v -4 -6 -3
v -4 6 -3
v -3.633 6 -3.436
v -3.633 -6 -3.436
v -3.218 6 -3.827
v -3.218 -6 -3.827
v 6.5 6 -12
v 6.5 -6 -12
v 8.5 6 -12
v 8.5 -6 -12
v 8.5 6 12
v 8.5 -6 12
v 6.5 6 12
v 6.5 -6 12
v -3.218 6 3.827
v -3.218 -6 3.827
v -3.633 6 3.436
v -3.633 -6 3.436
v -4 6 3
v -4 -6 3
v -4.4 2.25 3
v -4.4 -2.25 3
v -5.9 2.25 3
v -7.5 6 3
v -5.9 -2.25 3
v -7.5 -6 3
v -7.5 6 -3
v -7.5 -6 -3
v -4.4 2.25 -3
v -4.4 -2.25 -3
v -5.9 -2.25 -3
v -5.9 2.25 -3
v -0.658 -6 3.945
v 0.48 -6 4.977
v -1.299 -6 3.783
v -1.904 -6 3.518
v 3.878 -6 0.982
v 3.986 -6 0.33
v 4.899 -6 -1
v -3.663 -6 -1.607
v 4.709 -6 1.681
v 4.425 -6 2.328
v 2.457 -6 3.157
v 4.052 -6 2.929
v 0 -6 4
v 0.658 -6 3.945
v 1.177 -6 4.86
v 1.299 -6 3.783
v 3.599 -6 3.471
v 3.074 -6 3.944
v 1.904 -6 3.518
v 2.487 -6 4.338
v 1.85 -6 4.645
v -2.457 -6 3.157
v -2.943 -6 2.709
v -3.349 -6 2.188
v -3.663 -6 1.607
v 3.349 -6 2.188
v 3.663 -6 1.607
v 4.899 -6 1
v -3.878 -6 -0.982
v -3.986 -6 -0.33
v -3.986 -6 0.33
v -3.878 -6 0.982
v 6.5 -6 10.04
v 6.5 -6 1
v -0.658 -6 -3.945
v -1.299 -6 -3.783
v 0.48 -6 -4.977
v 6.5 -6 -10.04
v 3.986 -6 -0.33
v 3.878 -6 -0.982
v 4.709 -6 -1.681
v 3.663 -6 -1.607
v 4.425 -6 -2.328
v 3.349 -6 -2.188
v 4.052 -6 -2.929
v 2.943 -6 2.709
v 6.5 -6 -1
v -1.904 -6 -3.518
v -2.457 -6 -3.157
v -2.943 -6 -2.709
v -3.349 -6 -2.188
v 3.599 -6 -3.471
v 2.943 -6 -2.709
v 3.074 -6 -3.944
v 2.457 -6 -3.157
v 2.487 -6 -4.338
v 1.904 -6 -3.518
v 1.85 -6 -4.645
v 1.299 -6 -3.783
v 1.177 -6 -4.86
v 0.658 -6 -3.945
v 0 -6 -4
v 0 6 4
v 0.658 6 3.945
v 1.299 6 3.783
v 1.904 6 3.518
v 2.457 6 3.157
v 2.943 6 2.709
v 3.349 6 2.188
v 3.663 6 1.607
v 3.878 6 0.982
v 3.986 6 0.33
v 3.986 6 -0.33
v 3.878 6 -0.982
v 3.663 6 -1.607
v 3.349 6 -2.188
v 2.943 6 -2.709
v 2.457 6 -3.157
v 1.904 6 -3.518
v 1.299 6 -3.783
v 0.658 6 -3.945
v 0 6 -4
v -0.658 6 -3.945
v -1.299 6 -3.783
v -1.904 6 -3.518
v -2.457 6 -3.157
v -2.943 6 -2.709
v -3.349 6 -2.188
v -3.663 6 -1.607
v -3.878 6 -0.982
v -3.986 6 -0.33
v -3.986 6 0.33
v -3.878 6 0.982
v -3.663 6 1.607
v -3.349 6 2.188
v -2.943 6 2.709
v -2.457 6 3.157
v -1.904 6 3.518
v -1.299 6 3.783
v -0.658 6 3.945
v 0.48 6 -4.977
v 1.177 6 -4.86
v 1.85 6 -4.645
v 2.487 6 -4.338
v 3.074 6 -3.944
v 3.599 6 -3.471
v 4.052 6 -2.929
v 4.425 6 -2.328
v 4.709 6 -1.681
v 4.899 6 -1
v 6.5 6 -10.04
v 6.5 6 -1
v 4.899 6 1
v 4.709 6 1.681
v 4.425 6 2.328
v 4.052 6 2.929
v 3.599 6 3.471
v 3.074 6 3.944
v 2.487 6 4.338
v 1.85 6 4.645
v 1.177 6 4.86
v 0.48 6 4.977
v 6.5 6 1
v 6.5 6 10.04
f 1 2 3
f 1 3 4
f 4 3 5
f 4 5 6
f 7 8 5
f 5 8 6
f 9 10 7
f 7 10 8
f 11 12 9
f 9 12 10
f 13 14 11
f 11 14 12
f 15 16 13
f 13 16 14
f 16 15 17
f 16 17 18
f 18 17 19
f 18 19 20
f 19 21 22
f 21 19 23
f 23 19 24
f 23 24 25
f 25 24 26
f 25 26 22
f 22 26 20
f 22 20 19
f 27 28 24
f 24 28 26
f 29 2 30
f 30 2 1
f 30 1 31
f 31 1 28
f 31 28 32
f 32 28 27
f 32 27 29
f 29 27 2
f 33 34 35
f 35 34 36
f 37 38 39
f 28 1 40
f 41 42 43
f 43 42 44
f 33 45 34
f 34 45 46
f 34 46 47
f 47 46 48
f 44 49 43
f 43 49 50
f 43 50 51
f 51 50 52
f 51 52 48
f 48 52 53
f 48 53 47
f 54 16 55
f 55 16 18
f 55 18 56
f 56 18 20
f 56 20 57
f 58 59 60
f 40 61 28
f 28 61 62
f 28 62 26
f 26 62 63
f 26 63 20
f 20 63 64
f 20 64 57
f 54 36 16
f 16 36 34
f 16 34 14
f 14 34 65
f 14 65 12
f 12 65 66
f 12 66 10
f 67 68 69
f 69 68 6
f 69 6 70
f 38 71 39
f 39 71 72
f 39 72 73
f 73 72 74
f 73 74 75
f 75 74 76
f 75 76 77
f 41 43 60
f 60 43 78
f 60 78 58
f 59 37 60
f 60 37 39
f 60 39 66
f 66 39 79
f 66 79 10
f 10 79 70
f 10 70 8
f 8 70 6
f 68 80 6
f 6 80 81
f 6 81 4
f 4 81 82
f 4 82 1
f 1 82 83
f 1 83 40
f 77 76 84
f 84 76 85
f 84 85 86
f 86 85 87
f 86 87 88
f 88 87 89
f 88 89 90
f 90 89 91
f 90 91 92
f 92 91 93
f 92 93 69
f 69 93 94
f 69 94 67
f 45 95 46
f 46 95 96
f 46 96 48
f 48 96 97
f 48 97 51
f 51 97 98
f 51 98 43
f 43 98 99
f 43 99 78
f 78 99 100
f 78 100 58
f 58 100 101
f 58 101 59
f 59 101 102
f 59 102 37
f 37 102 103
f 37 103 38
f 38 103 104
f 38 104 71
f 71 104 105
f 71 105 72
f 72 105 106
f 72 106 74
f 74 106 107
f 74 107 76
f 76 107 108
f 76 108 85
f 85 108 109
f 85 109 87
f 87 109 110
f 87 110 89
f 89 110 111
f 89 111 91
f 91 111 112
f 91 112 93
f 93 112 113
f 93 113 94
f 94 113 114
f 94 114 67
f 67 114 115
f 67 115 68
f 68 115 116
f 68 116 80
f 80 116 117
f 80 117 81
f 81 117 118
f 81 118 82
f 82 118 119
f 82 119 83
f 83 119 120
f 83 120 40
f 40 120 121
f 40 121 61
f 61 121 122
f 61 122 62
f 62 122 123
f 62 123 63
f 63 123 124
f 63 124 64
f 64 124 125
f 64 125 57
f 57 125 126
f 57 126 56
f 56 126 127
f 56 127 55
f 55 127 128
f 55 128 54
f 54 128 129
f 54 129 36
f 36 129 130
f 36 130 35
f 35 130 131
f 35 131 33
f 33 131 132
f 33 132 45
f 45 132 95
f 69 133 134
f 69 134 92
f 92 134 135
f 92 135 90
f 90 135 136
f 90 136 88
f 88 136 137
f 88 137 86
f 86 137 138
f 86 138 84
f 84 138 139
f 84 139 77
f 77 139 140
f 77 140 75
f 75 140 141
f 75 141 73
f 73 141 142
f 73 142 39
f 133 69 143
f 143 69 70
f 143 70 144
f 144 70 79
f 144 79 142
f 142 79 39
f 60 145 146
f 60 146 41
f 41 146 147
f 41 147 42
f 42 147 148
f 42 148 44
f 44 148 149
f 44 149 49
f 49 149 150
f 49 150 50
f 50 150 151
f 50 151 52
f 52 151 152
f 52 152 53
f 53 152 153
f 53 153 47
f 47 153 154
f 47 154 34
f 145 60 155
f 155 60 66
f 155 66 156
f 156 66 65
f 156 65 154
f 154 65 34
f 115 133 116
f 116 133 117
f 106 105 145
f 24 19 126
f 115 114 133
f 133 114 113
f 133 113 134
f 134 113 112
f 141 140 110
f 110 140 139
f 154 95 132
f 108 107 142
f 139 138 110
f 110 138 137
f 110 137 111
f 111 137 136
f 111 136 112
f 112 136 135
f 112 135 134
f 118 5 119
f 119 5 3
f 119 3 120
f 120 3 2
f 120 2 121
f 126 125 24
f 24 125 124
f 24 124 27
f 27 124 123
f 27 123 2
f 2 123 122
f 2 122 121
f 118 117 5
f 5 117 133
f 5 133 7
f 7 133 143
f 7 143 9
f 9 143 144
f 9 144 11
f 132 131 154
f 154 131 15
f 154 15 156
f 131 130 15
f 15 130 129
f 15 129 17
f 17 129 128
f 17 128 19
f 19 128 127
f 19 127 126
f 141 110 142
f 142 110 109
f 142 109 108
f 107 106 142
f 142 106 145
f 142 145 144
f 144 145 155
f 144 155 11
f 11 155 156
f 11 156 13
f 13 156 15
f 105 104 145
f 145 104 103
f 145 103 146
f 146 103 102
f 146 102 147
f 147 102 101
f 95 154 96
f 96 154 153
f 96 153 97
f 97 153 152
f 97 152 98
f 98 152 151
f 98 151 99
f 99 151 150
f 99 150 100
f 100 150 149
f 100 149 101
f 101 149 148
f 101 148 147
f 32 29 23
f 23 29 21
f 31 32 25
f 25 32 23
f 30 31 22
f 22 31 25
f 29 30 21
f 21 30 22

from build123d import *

# Parameters (mm, degrees)
BOSS_EXTRUDE1_DEPTH      = 6
BOSS_EXTRUDE1_DEPTH_BACK = 6
SKETCH1_R                = 4
SKETCH2_W                = 1.5
SKETCH2_H                = 4.5
CUT_EXTRUDE1_DEPTH       = 19.255136264


with BuildPart() as part:
    # Sketch1 → Boss-Extrude1 (new, two sides: drawn at the far end of the back side and taken through both)
    with BuildSketch(Plane(origin=(0, 0, 0), x_dir=(1, 0, 0), z_dir=(0, 1, 0)).offset(-BOSS_EXTRUDE1_DEPTH_BACK)):
        with BuildLine():
            Line((-4, 3), (-7.5, 3))
            Line((-7.5, 3), (-7.5, -3))
            Line((-7.5, -3), (-4, -3))
            ThreePointArc((-4, -3), (-3.632728032, -3.435591222), (-3.218284596, -3.826570823))
            Line((-3.218284596, -3.826570823), (6.5, -12))
            Line((6.5, -12), (8.5, -12))
            Line((8.5, -12), (8.5, -1.905552368))
            Line((8.5, -1.905552368), (8.5, 12))
            Line((8.5, 12), (6.5, 12))
            Line((6.5, 12), (-3.218284596, 3.826570823))
            ThreePointArc((-3.218284596, 3.826570823), (-3.632728032, 3.435591222), (-4, 3))
        make_face()
        Circle(SKETCH1_R, mode=Mode.SUBTRACT)
        with BuildLine():
            Line((4.898979486, 1), (6.5, 1))
            Line((6.5, 1), (6.5, 10.040020596))
            Line((6.5, 10.040020596), (0.479918949, 4.976914486))
            ThreePointArc((0.479918949, 4.976914486), (3.34471214, 3.716571095), (4.898979486, 1))
        make_face(mode=Mode.SUBTRACT)
        with BuildLine():
            Line((4.898979486, -1), (6.5, -1))
            Line((6.5, -1), (6.5, -10.040020596))
            Line((6.5, -10.040020596), (0.479918949, -4.976914486))
            ThreePointArc((0.479918949, -4.976914486), (3.34471214, -3.716571095), (4.898979486, -1))
        make_face(mode=Mode.SUBTRACT)
    extrude(amount=BOSS_EXTRUDE1_DEPTH + BOSS_EXTRUDE1_DEPTH_BACK)

    # Sketch2 → Cut-Extrude1 (cut, through all)
    with BuildSketch(Plane(origin=(0, 0, -3), x_dir=(-1, 0, 0), z_dir=(0, 0, -1))):
        with Locations((5.15, 0)):
            Rectangle(SKETCH2_W, SKETCH2_H)
    extrude(amount=-CUT_EXTRUDE1_DEPTH, mode=Mode.SUBTRACT)


solid = part.part
